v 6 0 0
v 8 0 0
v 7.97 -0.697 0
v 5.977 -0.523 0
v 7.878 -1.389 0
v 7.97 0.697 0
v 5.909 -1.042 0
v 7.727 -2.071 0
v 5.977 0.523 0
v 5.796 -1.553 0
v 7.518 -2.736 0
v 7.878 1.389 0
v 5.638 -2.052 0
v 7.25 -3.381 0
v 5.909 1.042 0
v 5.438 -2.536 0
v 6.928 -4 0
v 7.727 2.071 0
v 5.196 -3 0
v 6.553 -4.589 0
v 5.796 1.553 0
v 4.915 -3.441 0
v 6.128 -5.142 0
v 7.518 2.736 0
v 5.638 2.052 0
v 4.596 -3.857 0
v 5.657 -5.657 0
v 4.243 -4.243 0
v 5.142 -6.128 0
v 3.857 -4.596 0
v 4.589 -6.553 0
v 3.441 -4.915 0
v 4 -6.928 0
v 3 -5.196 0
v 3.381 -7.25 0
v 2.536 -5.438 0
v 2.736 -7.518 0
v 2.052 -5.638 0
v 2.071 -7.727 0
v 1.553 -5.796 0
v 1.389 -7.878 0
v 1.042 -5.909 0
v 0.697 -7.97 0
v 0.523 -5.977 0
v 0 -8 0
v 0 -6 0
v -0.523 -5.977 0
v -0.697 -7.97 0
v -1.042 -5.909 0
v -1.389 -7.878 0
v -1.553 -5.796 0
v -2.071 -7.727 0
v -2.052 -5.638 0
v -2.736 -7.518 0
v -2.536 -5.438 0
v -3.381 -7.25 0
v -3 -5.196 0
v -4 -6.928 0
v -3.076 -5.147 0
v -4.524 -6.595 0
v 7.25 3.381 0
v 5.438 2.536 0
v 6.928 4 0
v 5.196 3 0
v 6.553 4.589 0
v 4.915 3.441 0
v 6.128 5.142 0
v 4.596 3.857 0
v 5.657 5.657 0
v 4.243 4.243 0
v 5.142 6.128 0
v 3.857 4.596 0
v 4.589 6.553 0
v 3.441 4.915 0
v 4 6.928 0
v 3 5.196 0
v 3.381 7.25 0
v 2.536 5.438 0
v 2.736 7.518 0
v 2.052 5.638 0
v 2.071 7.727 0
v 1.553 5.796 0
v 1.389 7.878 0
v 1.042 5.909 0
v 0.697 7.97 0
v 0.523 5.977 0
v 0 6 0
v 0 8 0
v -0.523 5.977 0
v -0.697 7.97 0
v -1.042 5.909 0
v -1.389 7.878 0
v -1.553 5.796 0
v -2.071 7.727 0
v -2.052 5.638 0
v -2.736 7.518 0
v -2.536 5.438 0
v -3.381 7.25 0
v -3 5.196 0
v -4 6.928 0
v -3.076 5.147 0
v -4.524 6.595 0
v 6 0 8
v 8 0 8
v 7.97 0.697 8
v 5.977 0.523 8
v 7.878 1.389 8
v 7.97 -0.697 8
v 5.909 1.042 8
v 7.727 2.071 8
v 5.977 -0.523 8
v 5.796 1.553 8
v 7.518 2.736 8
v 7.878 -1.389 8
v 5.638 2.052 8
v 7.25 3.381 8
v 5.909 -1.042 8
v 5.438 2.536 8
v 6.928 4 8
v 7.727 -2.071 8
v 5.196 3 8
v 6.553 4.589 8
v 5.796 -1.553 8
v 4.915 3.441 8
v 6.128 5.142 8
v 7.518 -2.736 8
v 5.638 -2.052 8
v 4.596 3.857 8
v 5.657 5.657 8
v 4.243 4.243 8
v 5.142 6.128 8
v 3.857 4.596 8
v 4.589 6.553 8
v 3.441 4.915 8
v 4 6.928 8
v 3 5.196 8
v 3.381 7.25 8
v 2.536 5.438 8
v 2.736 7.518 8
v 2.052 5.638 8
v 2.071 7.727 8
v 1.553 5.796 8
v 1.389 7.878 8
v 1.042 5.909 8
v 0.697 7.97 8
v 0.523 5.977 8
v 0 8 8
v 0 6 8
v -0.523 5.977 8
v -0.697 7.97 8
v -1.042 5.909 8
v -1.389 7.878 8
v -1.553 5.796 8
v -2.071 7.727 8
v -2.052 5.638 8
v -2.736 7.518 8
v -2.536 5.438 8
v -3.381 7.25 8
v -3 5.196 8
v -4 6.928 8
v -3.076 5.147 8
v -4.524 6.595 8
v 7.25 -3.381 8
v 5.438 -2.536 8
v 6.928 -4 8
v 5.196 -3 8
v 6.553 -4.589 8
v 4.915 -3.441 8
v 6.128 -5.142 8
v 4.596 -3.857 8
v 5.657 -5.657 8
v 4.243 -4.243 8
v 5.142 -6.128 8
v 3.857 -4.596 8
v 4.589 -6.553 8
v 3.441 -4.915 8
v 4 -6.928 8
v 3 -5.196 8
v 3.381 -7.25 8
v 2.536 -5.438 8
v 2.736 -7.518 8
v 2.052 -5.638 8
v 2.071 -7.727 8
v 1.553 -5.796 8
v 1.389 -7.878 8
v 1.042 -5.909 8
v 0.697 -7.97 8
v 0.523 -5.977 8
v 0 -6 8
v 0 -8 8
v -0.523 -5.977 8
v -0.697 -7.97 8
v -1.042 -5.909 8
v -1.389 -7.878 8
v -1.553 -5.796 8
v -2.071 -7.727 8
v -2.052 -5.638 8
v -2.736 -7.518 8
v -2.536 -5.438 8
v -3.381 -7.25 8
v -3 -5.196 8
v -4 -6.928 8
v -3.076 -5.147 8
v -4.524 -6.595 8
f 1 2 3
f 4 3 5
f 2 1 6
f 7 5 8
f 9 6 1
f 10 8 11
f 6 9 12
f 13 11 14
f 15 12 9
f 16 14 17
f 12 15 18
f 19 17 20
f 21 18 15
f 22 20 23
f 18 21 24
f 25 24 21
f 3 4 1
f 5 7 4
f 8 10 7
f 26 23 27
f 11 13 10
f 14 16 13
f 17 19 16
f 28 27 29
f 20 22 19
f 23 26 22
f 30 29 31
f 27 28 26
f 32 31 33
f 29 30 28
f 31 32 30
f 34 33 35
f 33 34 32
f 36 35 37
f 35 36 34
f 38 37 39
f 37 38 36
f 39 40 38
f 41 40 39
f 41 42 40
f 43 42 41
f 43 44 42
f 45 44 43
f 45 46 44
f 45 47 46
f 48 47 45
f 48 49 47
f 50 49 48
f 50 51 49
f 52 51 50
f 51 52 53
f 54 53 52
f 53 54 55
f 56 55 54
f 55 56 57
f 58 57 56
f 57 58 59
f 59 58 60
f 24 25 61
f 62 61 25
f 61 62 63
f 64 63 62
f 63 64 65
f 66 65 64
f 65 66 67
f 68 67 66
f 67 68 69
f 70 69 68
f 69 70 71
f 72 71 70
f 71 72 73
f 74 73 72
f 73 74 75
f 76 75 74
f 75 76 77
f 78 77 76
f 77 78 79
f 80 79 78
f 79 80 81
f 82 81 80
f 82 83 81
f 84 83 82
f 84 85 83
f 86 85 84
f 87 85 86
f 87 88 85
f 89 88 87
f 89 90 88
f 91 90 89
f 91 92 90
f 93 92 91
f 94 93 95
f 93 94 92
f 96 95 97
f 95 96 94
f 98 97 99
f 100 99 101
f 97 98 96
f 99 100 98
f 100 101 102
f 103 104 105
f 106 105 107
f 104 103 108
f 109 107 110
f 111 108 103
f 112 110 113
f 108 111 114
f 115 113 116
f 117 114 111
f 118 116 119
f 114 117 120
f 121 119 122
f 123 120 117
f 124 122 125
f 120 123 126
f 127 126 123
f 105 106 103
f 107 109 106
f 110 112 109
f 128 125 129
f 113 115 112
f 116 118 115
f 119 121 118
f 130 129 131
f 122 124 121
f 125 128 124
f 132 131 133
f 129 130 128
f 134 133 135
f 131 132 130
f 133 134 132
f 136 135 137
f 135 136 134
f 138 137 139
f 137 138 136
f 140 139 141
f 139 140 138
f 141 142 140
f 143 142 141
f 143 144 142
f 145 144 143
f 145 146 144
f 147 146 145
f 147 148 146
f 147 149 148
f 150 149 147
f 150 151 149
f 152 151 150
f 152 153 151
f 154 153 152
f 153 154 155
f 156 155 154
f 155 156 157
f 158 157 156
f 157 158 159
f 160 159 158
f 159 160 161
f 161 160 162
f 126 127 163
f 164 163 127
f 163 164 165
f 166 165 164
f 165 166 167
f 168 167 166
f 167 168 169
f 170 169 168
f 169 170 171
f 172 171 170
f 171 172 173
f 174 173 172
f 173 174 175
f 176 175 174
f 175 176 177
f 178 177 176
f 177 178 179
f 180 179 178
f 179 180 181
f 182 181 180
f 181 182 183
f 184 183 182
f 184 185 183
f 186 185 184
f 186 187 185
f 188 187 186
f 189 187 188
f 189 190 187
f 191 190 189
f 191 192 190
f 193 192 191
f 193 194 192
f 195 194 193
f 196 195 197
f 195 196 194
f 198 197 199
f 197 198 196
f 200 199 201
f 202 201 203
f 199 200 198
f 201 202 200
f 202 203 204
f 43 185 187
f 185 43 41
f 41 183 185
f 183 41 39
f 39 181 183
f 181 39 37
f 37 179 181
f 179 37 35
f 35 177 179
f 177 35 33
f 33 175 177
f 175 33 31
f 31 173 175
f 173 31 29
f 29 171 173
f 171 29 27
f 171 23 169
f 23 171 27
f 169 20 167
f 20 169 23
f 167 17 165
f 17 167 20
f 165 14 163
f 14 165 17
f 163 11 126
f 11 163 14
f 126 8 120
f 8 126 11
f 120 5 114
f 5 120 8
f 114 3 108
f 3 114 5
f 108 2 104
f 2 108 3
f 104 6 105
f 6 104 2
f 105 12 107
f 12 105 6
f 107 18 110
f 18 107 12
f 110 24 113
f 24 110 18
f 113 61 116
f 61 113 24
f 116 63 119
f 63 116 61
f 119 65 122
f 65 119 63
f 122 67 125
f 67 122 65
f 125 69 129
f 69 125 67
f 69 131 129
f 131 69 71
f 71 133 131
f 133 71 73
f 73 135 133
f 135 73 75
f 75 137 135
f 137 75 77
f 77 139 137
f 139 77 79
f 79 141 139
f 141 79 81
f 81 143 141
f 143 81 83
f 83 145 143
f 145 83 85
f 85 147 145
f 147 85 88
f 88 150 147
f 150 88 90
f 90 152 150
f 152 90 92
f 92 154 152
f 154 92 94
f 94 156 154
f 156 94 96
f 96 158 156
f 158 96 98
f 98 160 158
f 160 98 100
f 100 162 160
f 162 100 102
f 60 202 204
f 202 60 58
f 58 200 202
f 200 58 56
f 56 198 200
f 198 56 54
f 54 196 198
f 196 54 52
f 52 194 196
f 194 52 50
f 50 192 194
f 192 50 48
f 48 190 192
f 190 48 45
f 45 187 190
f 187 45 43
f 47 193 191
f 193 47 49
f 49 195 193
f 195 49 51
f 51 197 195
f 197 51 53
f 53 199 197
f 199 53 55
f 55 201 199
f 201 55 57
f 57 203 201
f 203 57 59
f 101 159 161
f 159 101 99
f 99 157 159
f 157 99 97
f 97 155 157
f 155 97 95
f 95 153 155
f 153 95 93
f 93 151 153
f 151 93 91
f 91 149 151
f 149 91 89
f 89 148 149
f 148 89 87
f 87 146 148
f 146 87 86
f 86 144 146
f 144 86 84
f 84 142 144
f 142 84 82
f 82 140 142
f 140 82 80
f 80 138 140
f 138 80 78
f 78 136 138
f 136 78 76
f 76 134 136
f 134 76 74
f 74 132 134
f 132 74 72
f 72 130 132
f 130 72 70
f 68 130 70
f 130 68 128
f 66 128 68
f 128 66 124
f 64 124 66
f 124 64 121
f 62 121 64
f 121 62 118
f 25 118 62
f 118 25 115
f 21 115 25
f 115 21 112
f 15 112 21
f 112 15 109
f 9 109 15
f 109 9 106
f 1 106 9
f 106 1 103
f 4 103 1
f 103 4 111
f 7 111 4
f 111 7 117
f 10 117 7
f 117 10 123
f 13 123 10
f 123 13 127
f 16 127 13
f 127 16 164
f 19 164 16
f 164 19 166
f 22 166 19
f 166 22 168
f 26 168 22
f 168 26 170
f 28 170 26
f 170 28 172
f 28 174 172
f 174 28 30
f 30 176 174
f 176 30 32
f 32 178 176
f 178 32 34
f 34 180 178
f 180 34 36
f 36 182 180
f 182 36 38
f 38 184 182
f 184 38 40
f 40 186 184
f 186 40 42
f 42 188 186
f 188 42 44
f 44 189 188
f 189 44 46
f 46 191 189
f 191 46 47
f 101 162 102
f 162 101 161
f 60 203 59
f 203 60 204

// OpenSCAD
difference() {
	linear_extrude(height = 8) {
		difference() {
			circle($fn = 72, r = 8);
			circle($fn = 72, r = 6);
		}
	}
	translate(v = [-5, 0, -1]) {
		rotate(a = [0, 0, 45]) {
			translate(v = [-5, -5, -0.5]) {
				linear_extrude(height = 10) {
					square(size = 10);
				}
			}
		}
	}
}
